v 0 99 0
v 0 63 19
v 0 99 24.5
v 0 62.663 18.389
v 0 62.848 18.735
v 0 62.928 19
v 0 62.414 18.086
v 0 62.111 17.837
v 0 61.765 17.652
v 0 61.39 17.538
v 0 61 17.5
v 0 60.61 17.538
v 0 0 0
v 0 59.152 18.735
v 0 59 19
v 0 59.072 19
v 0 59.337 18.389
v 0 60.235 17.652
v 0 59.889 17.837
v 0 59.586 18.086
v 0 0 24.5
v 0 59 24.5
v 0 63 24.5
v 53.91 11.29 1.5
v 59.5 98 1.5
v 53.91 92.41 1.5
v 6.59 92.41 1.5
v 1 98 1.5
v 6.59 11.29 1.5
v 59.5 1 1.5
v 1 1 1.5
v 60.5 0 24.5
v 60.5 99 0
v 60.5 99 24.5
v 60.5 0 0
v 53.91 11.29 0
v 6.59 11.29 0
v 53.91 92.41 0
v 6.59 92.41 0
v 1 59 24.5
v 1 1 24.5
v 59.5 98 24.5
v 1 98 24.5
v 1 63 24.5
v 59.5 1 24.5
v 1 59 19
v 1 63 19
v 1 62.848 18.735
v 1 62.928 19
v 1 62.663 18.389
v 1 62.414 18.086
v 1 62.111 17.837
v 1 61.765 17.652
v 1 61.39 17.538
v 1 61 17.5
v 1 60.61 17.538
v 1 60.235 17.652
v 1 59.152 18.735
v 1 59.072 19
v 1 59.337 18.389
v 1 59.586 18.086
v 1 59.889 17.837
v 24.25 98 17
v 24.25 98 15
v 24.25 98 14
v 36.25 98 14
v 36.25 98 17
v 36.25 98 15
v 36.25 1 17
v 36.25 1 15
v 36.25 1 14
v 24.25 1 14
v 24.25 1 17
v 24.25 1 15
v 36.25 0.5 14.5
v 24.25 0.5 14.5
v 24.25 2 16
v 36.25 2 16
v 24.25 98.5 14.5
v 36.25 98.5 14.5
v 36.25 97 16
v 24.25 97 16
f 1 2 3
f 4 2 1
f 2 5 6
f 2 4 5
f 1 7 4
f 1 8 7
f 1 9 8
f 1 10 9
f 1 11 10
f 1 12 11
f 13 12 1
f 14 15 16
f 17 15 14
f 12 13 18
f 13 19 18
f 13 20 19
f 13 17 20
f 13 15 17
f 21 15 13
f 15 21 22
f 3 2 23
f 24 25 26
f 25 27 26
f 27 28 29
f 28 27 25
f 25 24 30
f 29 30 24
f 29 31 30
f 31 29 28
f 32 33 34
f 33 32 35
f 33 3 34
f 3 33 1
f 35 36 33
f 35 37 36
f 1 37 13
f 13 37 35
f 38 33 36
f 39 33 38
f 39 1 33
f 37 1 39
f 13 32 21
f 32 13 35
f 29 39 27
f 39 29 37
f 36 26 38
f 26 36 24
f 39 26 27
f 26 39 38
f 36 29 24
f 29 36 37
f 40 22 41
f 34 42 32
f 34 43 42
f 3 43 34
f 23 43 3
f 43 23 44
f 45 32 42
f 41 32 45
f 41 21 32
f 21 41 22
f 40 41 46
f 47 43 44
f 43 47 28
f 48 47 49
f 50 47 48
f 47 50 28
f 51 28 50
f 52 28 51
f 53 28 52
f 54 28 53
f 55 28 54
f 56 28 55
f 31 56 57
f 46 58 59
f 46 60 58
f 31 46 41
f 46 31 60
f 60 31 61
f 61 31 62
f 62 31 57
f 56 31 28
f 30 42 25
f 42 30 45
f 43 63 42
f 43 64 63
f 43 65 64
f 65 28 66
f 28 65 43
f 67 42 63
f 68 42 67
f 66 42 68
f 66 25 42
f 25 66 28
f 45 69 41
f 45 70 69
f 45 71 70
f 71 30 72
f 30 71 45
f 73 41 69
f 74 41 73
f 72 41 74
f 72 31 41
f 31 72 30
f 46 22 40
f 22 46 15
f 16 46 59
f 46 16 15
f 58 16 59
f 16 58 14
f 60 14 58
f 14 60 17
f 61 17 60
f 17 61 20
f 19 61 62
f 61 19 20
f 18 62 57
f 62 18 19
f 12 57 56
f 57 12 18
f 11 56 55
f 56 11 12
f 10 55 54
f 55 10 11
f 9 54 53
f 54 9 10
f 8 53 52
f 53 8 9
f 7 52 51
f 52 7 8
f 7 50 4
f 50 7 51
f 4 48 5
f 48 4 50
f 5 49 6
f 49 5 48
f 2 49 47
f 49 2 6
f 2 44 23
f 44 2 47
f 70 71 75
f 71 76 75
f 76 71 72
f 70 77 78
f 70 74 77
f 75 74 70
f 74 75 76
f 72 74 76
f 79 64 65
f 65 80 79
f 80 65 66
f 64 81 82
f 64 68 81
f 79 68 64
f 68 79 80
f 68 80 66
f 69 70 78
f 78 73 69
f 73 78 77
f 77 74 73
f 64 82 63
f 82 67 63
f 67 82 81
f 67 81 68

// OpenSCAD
// file: variables.scad
$fa = 1;
$fs = 0.4;

wall_thickness = 1;
wall_buffer = 0.25;
back_thickness = 1.5;

hat_width = 58;
hat_length = 96.5;
hat_thickness = 3;
hat_height = 21;
hat_bottom_padding = 2;

display_width = 47.32;
display_length = 81.12;
display_inset = (hat_width - display_width) / 2;

case_width = hat_width + (wall_thickness + wall_buffer) * 2;
case_length = hat_length + (wall_thickness + wall_buffer) * 2;
case_height = hat_height + hat_bottom_padding + back_thickness * 2;

cable_cutout_radius = 2;
cable_cutout_offset = 61;
cable_cutout_height = 6.5;

clip_width = 10;
clip_point_height = 10;

$vpt = [hat_width / 2, hat_length / 2, 0];
$vpd = 500;
// main file
include<./variables.scad>

top_inside_width = case_width - wall_thickness * 2;
top_inside_length = case_length - wall_thickness * 2;

clip_point_height_rev = case_height - back_thickness - clip_point_height;

cable_cutout_height_rev = case_height - cable_cutout_height;

color("gray")

union() {
    difference() {
        base();
        
        // Clips inset
        translate([case_width / 2, 0, 0])
        rotate([0, -90, 0])
        linear_extrude(
            height = clip_width + 2,
            center = true
        )
        polygon([
            [clip_point_height_rev + wall_thickness, wall_thickness * 1.5],
            [clip_point_height_rev, wall_thickness / 2],
            [clip_point_height_rev - wall_thickness, wall_thickness * 1.5],
        ]);
        
        translate([case_width / 2, case_length, 0])
        rotate([180, -90, 0])
        linear_extrude(
            height = clip_width + 2,
            center = true
        )
        polygon([
            [clip_point_height_rev + wall_thickness, wall_thickness * 1.5],
            [clip_point_height_rev, wall_thickness / 2],
            [clip_point_height_rev - wall_thickness, wall_thickness * 1.5],
        ]);
    }
    
    // Clips
    translate([case_width / 2, 0, 0])
    rotate([0, -90, 0])
    linear_extrude(
        height = clip_width + 2,
        center = true
    )
    polygon([
        [clip_point_height_rev, wall_thickness / 2],
        [clip_point_height_rev + wall_thickness * 1.5, wall_thickness * 2],
        [clip_point_height_rev + wall_thickness * 3, wall_thickness / 2],
    ]);
    
    translate([case_width / 2, case_length, 0])
    rotate([180, -90, 0])
    linear_extrude(
        height = clip_width + 2,
        center = true
    )
    polygon([
        [clip_point_height_rev, wall_thickness / 2],
        [clip_point_height_rev + wall_thickness * 1.5, wall_thickness * 2],
        [clip_point_height_rev + wall_thickness * 3, wall_thickness / 2],
    ]);
}

module base() {
    // Bottom face
    difference() {
        cube([
            case_width,
            case_length,
            back_thickness
        ]);
        
        translate([
            display_inset + wall_thickness + wall_buffer,
            case_length - (display_inset + wall_thickness + wall_buffer + display_length),
            -1
        ])
        cube([
            display_width,
            display_length,
            back_thickness + 2
        ]);
    }
    
    // Sides
    difference() {
        cube([
            case_width,
            case_length,
            case_height - back_thickness
        ]);
        
        translate([
            wall_thickness,
            wall_thickness,
            -1
        ])
        cube([
            top_inside_width,
            top_inside_length,
            case_height - back_thickness + 2
        ]);
        
        // Cable cutout
        translate([
            -1,
            cable_cutout_offset,
            0
        ])
        rotate([0, 90, 0])
        linear_extrude(
            height = wall_thickness + 2
        )
        union() {
            translate([
                -cable_cutout_height_rev,
                0
            ])
            circle(
                r = cable_cutout_radius
            );
            
            translate([
                -(case_height - back_thickness + 1),
                -cable_cutout_radius
            ])
            square([
                cable_cutout_height,
                cable_cutout_radius * 2
            ]);
        }
    }
}
